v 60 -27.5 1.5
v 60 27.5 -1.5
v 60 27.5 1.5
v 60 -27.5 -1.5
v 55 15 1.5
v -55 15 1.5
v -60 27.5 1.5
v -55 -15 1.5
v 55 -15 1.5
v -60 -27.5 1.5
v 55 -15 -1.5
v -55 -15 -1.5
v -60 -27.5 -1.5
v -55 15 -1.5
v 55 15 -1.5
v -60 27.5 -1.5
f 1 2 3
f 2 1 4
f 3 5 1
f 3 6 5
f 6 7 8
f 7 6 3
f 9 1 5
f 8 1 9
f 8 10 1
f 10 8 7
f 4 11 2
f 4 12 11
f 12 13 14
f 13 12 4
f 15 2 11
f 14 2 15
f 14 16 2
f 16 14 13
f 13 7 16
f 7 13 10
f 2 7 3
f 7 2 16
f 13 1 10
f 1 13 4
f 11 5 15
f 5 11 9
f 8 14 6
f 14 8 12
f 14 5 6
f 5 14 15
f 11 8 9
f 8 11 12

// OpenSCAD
 // CSG.scad - Basic example of CSG usage


 difference(){
     cube([120,55,3],center=true);  
     cube([110,30,5],center=true);  
}
